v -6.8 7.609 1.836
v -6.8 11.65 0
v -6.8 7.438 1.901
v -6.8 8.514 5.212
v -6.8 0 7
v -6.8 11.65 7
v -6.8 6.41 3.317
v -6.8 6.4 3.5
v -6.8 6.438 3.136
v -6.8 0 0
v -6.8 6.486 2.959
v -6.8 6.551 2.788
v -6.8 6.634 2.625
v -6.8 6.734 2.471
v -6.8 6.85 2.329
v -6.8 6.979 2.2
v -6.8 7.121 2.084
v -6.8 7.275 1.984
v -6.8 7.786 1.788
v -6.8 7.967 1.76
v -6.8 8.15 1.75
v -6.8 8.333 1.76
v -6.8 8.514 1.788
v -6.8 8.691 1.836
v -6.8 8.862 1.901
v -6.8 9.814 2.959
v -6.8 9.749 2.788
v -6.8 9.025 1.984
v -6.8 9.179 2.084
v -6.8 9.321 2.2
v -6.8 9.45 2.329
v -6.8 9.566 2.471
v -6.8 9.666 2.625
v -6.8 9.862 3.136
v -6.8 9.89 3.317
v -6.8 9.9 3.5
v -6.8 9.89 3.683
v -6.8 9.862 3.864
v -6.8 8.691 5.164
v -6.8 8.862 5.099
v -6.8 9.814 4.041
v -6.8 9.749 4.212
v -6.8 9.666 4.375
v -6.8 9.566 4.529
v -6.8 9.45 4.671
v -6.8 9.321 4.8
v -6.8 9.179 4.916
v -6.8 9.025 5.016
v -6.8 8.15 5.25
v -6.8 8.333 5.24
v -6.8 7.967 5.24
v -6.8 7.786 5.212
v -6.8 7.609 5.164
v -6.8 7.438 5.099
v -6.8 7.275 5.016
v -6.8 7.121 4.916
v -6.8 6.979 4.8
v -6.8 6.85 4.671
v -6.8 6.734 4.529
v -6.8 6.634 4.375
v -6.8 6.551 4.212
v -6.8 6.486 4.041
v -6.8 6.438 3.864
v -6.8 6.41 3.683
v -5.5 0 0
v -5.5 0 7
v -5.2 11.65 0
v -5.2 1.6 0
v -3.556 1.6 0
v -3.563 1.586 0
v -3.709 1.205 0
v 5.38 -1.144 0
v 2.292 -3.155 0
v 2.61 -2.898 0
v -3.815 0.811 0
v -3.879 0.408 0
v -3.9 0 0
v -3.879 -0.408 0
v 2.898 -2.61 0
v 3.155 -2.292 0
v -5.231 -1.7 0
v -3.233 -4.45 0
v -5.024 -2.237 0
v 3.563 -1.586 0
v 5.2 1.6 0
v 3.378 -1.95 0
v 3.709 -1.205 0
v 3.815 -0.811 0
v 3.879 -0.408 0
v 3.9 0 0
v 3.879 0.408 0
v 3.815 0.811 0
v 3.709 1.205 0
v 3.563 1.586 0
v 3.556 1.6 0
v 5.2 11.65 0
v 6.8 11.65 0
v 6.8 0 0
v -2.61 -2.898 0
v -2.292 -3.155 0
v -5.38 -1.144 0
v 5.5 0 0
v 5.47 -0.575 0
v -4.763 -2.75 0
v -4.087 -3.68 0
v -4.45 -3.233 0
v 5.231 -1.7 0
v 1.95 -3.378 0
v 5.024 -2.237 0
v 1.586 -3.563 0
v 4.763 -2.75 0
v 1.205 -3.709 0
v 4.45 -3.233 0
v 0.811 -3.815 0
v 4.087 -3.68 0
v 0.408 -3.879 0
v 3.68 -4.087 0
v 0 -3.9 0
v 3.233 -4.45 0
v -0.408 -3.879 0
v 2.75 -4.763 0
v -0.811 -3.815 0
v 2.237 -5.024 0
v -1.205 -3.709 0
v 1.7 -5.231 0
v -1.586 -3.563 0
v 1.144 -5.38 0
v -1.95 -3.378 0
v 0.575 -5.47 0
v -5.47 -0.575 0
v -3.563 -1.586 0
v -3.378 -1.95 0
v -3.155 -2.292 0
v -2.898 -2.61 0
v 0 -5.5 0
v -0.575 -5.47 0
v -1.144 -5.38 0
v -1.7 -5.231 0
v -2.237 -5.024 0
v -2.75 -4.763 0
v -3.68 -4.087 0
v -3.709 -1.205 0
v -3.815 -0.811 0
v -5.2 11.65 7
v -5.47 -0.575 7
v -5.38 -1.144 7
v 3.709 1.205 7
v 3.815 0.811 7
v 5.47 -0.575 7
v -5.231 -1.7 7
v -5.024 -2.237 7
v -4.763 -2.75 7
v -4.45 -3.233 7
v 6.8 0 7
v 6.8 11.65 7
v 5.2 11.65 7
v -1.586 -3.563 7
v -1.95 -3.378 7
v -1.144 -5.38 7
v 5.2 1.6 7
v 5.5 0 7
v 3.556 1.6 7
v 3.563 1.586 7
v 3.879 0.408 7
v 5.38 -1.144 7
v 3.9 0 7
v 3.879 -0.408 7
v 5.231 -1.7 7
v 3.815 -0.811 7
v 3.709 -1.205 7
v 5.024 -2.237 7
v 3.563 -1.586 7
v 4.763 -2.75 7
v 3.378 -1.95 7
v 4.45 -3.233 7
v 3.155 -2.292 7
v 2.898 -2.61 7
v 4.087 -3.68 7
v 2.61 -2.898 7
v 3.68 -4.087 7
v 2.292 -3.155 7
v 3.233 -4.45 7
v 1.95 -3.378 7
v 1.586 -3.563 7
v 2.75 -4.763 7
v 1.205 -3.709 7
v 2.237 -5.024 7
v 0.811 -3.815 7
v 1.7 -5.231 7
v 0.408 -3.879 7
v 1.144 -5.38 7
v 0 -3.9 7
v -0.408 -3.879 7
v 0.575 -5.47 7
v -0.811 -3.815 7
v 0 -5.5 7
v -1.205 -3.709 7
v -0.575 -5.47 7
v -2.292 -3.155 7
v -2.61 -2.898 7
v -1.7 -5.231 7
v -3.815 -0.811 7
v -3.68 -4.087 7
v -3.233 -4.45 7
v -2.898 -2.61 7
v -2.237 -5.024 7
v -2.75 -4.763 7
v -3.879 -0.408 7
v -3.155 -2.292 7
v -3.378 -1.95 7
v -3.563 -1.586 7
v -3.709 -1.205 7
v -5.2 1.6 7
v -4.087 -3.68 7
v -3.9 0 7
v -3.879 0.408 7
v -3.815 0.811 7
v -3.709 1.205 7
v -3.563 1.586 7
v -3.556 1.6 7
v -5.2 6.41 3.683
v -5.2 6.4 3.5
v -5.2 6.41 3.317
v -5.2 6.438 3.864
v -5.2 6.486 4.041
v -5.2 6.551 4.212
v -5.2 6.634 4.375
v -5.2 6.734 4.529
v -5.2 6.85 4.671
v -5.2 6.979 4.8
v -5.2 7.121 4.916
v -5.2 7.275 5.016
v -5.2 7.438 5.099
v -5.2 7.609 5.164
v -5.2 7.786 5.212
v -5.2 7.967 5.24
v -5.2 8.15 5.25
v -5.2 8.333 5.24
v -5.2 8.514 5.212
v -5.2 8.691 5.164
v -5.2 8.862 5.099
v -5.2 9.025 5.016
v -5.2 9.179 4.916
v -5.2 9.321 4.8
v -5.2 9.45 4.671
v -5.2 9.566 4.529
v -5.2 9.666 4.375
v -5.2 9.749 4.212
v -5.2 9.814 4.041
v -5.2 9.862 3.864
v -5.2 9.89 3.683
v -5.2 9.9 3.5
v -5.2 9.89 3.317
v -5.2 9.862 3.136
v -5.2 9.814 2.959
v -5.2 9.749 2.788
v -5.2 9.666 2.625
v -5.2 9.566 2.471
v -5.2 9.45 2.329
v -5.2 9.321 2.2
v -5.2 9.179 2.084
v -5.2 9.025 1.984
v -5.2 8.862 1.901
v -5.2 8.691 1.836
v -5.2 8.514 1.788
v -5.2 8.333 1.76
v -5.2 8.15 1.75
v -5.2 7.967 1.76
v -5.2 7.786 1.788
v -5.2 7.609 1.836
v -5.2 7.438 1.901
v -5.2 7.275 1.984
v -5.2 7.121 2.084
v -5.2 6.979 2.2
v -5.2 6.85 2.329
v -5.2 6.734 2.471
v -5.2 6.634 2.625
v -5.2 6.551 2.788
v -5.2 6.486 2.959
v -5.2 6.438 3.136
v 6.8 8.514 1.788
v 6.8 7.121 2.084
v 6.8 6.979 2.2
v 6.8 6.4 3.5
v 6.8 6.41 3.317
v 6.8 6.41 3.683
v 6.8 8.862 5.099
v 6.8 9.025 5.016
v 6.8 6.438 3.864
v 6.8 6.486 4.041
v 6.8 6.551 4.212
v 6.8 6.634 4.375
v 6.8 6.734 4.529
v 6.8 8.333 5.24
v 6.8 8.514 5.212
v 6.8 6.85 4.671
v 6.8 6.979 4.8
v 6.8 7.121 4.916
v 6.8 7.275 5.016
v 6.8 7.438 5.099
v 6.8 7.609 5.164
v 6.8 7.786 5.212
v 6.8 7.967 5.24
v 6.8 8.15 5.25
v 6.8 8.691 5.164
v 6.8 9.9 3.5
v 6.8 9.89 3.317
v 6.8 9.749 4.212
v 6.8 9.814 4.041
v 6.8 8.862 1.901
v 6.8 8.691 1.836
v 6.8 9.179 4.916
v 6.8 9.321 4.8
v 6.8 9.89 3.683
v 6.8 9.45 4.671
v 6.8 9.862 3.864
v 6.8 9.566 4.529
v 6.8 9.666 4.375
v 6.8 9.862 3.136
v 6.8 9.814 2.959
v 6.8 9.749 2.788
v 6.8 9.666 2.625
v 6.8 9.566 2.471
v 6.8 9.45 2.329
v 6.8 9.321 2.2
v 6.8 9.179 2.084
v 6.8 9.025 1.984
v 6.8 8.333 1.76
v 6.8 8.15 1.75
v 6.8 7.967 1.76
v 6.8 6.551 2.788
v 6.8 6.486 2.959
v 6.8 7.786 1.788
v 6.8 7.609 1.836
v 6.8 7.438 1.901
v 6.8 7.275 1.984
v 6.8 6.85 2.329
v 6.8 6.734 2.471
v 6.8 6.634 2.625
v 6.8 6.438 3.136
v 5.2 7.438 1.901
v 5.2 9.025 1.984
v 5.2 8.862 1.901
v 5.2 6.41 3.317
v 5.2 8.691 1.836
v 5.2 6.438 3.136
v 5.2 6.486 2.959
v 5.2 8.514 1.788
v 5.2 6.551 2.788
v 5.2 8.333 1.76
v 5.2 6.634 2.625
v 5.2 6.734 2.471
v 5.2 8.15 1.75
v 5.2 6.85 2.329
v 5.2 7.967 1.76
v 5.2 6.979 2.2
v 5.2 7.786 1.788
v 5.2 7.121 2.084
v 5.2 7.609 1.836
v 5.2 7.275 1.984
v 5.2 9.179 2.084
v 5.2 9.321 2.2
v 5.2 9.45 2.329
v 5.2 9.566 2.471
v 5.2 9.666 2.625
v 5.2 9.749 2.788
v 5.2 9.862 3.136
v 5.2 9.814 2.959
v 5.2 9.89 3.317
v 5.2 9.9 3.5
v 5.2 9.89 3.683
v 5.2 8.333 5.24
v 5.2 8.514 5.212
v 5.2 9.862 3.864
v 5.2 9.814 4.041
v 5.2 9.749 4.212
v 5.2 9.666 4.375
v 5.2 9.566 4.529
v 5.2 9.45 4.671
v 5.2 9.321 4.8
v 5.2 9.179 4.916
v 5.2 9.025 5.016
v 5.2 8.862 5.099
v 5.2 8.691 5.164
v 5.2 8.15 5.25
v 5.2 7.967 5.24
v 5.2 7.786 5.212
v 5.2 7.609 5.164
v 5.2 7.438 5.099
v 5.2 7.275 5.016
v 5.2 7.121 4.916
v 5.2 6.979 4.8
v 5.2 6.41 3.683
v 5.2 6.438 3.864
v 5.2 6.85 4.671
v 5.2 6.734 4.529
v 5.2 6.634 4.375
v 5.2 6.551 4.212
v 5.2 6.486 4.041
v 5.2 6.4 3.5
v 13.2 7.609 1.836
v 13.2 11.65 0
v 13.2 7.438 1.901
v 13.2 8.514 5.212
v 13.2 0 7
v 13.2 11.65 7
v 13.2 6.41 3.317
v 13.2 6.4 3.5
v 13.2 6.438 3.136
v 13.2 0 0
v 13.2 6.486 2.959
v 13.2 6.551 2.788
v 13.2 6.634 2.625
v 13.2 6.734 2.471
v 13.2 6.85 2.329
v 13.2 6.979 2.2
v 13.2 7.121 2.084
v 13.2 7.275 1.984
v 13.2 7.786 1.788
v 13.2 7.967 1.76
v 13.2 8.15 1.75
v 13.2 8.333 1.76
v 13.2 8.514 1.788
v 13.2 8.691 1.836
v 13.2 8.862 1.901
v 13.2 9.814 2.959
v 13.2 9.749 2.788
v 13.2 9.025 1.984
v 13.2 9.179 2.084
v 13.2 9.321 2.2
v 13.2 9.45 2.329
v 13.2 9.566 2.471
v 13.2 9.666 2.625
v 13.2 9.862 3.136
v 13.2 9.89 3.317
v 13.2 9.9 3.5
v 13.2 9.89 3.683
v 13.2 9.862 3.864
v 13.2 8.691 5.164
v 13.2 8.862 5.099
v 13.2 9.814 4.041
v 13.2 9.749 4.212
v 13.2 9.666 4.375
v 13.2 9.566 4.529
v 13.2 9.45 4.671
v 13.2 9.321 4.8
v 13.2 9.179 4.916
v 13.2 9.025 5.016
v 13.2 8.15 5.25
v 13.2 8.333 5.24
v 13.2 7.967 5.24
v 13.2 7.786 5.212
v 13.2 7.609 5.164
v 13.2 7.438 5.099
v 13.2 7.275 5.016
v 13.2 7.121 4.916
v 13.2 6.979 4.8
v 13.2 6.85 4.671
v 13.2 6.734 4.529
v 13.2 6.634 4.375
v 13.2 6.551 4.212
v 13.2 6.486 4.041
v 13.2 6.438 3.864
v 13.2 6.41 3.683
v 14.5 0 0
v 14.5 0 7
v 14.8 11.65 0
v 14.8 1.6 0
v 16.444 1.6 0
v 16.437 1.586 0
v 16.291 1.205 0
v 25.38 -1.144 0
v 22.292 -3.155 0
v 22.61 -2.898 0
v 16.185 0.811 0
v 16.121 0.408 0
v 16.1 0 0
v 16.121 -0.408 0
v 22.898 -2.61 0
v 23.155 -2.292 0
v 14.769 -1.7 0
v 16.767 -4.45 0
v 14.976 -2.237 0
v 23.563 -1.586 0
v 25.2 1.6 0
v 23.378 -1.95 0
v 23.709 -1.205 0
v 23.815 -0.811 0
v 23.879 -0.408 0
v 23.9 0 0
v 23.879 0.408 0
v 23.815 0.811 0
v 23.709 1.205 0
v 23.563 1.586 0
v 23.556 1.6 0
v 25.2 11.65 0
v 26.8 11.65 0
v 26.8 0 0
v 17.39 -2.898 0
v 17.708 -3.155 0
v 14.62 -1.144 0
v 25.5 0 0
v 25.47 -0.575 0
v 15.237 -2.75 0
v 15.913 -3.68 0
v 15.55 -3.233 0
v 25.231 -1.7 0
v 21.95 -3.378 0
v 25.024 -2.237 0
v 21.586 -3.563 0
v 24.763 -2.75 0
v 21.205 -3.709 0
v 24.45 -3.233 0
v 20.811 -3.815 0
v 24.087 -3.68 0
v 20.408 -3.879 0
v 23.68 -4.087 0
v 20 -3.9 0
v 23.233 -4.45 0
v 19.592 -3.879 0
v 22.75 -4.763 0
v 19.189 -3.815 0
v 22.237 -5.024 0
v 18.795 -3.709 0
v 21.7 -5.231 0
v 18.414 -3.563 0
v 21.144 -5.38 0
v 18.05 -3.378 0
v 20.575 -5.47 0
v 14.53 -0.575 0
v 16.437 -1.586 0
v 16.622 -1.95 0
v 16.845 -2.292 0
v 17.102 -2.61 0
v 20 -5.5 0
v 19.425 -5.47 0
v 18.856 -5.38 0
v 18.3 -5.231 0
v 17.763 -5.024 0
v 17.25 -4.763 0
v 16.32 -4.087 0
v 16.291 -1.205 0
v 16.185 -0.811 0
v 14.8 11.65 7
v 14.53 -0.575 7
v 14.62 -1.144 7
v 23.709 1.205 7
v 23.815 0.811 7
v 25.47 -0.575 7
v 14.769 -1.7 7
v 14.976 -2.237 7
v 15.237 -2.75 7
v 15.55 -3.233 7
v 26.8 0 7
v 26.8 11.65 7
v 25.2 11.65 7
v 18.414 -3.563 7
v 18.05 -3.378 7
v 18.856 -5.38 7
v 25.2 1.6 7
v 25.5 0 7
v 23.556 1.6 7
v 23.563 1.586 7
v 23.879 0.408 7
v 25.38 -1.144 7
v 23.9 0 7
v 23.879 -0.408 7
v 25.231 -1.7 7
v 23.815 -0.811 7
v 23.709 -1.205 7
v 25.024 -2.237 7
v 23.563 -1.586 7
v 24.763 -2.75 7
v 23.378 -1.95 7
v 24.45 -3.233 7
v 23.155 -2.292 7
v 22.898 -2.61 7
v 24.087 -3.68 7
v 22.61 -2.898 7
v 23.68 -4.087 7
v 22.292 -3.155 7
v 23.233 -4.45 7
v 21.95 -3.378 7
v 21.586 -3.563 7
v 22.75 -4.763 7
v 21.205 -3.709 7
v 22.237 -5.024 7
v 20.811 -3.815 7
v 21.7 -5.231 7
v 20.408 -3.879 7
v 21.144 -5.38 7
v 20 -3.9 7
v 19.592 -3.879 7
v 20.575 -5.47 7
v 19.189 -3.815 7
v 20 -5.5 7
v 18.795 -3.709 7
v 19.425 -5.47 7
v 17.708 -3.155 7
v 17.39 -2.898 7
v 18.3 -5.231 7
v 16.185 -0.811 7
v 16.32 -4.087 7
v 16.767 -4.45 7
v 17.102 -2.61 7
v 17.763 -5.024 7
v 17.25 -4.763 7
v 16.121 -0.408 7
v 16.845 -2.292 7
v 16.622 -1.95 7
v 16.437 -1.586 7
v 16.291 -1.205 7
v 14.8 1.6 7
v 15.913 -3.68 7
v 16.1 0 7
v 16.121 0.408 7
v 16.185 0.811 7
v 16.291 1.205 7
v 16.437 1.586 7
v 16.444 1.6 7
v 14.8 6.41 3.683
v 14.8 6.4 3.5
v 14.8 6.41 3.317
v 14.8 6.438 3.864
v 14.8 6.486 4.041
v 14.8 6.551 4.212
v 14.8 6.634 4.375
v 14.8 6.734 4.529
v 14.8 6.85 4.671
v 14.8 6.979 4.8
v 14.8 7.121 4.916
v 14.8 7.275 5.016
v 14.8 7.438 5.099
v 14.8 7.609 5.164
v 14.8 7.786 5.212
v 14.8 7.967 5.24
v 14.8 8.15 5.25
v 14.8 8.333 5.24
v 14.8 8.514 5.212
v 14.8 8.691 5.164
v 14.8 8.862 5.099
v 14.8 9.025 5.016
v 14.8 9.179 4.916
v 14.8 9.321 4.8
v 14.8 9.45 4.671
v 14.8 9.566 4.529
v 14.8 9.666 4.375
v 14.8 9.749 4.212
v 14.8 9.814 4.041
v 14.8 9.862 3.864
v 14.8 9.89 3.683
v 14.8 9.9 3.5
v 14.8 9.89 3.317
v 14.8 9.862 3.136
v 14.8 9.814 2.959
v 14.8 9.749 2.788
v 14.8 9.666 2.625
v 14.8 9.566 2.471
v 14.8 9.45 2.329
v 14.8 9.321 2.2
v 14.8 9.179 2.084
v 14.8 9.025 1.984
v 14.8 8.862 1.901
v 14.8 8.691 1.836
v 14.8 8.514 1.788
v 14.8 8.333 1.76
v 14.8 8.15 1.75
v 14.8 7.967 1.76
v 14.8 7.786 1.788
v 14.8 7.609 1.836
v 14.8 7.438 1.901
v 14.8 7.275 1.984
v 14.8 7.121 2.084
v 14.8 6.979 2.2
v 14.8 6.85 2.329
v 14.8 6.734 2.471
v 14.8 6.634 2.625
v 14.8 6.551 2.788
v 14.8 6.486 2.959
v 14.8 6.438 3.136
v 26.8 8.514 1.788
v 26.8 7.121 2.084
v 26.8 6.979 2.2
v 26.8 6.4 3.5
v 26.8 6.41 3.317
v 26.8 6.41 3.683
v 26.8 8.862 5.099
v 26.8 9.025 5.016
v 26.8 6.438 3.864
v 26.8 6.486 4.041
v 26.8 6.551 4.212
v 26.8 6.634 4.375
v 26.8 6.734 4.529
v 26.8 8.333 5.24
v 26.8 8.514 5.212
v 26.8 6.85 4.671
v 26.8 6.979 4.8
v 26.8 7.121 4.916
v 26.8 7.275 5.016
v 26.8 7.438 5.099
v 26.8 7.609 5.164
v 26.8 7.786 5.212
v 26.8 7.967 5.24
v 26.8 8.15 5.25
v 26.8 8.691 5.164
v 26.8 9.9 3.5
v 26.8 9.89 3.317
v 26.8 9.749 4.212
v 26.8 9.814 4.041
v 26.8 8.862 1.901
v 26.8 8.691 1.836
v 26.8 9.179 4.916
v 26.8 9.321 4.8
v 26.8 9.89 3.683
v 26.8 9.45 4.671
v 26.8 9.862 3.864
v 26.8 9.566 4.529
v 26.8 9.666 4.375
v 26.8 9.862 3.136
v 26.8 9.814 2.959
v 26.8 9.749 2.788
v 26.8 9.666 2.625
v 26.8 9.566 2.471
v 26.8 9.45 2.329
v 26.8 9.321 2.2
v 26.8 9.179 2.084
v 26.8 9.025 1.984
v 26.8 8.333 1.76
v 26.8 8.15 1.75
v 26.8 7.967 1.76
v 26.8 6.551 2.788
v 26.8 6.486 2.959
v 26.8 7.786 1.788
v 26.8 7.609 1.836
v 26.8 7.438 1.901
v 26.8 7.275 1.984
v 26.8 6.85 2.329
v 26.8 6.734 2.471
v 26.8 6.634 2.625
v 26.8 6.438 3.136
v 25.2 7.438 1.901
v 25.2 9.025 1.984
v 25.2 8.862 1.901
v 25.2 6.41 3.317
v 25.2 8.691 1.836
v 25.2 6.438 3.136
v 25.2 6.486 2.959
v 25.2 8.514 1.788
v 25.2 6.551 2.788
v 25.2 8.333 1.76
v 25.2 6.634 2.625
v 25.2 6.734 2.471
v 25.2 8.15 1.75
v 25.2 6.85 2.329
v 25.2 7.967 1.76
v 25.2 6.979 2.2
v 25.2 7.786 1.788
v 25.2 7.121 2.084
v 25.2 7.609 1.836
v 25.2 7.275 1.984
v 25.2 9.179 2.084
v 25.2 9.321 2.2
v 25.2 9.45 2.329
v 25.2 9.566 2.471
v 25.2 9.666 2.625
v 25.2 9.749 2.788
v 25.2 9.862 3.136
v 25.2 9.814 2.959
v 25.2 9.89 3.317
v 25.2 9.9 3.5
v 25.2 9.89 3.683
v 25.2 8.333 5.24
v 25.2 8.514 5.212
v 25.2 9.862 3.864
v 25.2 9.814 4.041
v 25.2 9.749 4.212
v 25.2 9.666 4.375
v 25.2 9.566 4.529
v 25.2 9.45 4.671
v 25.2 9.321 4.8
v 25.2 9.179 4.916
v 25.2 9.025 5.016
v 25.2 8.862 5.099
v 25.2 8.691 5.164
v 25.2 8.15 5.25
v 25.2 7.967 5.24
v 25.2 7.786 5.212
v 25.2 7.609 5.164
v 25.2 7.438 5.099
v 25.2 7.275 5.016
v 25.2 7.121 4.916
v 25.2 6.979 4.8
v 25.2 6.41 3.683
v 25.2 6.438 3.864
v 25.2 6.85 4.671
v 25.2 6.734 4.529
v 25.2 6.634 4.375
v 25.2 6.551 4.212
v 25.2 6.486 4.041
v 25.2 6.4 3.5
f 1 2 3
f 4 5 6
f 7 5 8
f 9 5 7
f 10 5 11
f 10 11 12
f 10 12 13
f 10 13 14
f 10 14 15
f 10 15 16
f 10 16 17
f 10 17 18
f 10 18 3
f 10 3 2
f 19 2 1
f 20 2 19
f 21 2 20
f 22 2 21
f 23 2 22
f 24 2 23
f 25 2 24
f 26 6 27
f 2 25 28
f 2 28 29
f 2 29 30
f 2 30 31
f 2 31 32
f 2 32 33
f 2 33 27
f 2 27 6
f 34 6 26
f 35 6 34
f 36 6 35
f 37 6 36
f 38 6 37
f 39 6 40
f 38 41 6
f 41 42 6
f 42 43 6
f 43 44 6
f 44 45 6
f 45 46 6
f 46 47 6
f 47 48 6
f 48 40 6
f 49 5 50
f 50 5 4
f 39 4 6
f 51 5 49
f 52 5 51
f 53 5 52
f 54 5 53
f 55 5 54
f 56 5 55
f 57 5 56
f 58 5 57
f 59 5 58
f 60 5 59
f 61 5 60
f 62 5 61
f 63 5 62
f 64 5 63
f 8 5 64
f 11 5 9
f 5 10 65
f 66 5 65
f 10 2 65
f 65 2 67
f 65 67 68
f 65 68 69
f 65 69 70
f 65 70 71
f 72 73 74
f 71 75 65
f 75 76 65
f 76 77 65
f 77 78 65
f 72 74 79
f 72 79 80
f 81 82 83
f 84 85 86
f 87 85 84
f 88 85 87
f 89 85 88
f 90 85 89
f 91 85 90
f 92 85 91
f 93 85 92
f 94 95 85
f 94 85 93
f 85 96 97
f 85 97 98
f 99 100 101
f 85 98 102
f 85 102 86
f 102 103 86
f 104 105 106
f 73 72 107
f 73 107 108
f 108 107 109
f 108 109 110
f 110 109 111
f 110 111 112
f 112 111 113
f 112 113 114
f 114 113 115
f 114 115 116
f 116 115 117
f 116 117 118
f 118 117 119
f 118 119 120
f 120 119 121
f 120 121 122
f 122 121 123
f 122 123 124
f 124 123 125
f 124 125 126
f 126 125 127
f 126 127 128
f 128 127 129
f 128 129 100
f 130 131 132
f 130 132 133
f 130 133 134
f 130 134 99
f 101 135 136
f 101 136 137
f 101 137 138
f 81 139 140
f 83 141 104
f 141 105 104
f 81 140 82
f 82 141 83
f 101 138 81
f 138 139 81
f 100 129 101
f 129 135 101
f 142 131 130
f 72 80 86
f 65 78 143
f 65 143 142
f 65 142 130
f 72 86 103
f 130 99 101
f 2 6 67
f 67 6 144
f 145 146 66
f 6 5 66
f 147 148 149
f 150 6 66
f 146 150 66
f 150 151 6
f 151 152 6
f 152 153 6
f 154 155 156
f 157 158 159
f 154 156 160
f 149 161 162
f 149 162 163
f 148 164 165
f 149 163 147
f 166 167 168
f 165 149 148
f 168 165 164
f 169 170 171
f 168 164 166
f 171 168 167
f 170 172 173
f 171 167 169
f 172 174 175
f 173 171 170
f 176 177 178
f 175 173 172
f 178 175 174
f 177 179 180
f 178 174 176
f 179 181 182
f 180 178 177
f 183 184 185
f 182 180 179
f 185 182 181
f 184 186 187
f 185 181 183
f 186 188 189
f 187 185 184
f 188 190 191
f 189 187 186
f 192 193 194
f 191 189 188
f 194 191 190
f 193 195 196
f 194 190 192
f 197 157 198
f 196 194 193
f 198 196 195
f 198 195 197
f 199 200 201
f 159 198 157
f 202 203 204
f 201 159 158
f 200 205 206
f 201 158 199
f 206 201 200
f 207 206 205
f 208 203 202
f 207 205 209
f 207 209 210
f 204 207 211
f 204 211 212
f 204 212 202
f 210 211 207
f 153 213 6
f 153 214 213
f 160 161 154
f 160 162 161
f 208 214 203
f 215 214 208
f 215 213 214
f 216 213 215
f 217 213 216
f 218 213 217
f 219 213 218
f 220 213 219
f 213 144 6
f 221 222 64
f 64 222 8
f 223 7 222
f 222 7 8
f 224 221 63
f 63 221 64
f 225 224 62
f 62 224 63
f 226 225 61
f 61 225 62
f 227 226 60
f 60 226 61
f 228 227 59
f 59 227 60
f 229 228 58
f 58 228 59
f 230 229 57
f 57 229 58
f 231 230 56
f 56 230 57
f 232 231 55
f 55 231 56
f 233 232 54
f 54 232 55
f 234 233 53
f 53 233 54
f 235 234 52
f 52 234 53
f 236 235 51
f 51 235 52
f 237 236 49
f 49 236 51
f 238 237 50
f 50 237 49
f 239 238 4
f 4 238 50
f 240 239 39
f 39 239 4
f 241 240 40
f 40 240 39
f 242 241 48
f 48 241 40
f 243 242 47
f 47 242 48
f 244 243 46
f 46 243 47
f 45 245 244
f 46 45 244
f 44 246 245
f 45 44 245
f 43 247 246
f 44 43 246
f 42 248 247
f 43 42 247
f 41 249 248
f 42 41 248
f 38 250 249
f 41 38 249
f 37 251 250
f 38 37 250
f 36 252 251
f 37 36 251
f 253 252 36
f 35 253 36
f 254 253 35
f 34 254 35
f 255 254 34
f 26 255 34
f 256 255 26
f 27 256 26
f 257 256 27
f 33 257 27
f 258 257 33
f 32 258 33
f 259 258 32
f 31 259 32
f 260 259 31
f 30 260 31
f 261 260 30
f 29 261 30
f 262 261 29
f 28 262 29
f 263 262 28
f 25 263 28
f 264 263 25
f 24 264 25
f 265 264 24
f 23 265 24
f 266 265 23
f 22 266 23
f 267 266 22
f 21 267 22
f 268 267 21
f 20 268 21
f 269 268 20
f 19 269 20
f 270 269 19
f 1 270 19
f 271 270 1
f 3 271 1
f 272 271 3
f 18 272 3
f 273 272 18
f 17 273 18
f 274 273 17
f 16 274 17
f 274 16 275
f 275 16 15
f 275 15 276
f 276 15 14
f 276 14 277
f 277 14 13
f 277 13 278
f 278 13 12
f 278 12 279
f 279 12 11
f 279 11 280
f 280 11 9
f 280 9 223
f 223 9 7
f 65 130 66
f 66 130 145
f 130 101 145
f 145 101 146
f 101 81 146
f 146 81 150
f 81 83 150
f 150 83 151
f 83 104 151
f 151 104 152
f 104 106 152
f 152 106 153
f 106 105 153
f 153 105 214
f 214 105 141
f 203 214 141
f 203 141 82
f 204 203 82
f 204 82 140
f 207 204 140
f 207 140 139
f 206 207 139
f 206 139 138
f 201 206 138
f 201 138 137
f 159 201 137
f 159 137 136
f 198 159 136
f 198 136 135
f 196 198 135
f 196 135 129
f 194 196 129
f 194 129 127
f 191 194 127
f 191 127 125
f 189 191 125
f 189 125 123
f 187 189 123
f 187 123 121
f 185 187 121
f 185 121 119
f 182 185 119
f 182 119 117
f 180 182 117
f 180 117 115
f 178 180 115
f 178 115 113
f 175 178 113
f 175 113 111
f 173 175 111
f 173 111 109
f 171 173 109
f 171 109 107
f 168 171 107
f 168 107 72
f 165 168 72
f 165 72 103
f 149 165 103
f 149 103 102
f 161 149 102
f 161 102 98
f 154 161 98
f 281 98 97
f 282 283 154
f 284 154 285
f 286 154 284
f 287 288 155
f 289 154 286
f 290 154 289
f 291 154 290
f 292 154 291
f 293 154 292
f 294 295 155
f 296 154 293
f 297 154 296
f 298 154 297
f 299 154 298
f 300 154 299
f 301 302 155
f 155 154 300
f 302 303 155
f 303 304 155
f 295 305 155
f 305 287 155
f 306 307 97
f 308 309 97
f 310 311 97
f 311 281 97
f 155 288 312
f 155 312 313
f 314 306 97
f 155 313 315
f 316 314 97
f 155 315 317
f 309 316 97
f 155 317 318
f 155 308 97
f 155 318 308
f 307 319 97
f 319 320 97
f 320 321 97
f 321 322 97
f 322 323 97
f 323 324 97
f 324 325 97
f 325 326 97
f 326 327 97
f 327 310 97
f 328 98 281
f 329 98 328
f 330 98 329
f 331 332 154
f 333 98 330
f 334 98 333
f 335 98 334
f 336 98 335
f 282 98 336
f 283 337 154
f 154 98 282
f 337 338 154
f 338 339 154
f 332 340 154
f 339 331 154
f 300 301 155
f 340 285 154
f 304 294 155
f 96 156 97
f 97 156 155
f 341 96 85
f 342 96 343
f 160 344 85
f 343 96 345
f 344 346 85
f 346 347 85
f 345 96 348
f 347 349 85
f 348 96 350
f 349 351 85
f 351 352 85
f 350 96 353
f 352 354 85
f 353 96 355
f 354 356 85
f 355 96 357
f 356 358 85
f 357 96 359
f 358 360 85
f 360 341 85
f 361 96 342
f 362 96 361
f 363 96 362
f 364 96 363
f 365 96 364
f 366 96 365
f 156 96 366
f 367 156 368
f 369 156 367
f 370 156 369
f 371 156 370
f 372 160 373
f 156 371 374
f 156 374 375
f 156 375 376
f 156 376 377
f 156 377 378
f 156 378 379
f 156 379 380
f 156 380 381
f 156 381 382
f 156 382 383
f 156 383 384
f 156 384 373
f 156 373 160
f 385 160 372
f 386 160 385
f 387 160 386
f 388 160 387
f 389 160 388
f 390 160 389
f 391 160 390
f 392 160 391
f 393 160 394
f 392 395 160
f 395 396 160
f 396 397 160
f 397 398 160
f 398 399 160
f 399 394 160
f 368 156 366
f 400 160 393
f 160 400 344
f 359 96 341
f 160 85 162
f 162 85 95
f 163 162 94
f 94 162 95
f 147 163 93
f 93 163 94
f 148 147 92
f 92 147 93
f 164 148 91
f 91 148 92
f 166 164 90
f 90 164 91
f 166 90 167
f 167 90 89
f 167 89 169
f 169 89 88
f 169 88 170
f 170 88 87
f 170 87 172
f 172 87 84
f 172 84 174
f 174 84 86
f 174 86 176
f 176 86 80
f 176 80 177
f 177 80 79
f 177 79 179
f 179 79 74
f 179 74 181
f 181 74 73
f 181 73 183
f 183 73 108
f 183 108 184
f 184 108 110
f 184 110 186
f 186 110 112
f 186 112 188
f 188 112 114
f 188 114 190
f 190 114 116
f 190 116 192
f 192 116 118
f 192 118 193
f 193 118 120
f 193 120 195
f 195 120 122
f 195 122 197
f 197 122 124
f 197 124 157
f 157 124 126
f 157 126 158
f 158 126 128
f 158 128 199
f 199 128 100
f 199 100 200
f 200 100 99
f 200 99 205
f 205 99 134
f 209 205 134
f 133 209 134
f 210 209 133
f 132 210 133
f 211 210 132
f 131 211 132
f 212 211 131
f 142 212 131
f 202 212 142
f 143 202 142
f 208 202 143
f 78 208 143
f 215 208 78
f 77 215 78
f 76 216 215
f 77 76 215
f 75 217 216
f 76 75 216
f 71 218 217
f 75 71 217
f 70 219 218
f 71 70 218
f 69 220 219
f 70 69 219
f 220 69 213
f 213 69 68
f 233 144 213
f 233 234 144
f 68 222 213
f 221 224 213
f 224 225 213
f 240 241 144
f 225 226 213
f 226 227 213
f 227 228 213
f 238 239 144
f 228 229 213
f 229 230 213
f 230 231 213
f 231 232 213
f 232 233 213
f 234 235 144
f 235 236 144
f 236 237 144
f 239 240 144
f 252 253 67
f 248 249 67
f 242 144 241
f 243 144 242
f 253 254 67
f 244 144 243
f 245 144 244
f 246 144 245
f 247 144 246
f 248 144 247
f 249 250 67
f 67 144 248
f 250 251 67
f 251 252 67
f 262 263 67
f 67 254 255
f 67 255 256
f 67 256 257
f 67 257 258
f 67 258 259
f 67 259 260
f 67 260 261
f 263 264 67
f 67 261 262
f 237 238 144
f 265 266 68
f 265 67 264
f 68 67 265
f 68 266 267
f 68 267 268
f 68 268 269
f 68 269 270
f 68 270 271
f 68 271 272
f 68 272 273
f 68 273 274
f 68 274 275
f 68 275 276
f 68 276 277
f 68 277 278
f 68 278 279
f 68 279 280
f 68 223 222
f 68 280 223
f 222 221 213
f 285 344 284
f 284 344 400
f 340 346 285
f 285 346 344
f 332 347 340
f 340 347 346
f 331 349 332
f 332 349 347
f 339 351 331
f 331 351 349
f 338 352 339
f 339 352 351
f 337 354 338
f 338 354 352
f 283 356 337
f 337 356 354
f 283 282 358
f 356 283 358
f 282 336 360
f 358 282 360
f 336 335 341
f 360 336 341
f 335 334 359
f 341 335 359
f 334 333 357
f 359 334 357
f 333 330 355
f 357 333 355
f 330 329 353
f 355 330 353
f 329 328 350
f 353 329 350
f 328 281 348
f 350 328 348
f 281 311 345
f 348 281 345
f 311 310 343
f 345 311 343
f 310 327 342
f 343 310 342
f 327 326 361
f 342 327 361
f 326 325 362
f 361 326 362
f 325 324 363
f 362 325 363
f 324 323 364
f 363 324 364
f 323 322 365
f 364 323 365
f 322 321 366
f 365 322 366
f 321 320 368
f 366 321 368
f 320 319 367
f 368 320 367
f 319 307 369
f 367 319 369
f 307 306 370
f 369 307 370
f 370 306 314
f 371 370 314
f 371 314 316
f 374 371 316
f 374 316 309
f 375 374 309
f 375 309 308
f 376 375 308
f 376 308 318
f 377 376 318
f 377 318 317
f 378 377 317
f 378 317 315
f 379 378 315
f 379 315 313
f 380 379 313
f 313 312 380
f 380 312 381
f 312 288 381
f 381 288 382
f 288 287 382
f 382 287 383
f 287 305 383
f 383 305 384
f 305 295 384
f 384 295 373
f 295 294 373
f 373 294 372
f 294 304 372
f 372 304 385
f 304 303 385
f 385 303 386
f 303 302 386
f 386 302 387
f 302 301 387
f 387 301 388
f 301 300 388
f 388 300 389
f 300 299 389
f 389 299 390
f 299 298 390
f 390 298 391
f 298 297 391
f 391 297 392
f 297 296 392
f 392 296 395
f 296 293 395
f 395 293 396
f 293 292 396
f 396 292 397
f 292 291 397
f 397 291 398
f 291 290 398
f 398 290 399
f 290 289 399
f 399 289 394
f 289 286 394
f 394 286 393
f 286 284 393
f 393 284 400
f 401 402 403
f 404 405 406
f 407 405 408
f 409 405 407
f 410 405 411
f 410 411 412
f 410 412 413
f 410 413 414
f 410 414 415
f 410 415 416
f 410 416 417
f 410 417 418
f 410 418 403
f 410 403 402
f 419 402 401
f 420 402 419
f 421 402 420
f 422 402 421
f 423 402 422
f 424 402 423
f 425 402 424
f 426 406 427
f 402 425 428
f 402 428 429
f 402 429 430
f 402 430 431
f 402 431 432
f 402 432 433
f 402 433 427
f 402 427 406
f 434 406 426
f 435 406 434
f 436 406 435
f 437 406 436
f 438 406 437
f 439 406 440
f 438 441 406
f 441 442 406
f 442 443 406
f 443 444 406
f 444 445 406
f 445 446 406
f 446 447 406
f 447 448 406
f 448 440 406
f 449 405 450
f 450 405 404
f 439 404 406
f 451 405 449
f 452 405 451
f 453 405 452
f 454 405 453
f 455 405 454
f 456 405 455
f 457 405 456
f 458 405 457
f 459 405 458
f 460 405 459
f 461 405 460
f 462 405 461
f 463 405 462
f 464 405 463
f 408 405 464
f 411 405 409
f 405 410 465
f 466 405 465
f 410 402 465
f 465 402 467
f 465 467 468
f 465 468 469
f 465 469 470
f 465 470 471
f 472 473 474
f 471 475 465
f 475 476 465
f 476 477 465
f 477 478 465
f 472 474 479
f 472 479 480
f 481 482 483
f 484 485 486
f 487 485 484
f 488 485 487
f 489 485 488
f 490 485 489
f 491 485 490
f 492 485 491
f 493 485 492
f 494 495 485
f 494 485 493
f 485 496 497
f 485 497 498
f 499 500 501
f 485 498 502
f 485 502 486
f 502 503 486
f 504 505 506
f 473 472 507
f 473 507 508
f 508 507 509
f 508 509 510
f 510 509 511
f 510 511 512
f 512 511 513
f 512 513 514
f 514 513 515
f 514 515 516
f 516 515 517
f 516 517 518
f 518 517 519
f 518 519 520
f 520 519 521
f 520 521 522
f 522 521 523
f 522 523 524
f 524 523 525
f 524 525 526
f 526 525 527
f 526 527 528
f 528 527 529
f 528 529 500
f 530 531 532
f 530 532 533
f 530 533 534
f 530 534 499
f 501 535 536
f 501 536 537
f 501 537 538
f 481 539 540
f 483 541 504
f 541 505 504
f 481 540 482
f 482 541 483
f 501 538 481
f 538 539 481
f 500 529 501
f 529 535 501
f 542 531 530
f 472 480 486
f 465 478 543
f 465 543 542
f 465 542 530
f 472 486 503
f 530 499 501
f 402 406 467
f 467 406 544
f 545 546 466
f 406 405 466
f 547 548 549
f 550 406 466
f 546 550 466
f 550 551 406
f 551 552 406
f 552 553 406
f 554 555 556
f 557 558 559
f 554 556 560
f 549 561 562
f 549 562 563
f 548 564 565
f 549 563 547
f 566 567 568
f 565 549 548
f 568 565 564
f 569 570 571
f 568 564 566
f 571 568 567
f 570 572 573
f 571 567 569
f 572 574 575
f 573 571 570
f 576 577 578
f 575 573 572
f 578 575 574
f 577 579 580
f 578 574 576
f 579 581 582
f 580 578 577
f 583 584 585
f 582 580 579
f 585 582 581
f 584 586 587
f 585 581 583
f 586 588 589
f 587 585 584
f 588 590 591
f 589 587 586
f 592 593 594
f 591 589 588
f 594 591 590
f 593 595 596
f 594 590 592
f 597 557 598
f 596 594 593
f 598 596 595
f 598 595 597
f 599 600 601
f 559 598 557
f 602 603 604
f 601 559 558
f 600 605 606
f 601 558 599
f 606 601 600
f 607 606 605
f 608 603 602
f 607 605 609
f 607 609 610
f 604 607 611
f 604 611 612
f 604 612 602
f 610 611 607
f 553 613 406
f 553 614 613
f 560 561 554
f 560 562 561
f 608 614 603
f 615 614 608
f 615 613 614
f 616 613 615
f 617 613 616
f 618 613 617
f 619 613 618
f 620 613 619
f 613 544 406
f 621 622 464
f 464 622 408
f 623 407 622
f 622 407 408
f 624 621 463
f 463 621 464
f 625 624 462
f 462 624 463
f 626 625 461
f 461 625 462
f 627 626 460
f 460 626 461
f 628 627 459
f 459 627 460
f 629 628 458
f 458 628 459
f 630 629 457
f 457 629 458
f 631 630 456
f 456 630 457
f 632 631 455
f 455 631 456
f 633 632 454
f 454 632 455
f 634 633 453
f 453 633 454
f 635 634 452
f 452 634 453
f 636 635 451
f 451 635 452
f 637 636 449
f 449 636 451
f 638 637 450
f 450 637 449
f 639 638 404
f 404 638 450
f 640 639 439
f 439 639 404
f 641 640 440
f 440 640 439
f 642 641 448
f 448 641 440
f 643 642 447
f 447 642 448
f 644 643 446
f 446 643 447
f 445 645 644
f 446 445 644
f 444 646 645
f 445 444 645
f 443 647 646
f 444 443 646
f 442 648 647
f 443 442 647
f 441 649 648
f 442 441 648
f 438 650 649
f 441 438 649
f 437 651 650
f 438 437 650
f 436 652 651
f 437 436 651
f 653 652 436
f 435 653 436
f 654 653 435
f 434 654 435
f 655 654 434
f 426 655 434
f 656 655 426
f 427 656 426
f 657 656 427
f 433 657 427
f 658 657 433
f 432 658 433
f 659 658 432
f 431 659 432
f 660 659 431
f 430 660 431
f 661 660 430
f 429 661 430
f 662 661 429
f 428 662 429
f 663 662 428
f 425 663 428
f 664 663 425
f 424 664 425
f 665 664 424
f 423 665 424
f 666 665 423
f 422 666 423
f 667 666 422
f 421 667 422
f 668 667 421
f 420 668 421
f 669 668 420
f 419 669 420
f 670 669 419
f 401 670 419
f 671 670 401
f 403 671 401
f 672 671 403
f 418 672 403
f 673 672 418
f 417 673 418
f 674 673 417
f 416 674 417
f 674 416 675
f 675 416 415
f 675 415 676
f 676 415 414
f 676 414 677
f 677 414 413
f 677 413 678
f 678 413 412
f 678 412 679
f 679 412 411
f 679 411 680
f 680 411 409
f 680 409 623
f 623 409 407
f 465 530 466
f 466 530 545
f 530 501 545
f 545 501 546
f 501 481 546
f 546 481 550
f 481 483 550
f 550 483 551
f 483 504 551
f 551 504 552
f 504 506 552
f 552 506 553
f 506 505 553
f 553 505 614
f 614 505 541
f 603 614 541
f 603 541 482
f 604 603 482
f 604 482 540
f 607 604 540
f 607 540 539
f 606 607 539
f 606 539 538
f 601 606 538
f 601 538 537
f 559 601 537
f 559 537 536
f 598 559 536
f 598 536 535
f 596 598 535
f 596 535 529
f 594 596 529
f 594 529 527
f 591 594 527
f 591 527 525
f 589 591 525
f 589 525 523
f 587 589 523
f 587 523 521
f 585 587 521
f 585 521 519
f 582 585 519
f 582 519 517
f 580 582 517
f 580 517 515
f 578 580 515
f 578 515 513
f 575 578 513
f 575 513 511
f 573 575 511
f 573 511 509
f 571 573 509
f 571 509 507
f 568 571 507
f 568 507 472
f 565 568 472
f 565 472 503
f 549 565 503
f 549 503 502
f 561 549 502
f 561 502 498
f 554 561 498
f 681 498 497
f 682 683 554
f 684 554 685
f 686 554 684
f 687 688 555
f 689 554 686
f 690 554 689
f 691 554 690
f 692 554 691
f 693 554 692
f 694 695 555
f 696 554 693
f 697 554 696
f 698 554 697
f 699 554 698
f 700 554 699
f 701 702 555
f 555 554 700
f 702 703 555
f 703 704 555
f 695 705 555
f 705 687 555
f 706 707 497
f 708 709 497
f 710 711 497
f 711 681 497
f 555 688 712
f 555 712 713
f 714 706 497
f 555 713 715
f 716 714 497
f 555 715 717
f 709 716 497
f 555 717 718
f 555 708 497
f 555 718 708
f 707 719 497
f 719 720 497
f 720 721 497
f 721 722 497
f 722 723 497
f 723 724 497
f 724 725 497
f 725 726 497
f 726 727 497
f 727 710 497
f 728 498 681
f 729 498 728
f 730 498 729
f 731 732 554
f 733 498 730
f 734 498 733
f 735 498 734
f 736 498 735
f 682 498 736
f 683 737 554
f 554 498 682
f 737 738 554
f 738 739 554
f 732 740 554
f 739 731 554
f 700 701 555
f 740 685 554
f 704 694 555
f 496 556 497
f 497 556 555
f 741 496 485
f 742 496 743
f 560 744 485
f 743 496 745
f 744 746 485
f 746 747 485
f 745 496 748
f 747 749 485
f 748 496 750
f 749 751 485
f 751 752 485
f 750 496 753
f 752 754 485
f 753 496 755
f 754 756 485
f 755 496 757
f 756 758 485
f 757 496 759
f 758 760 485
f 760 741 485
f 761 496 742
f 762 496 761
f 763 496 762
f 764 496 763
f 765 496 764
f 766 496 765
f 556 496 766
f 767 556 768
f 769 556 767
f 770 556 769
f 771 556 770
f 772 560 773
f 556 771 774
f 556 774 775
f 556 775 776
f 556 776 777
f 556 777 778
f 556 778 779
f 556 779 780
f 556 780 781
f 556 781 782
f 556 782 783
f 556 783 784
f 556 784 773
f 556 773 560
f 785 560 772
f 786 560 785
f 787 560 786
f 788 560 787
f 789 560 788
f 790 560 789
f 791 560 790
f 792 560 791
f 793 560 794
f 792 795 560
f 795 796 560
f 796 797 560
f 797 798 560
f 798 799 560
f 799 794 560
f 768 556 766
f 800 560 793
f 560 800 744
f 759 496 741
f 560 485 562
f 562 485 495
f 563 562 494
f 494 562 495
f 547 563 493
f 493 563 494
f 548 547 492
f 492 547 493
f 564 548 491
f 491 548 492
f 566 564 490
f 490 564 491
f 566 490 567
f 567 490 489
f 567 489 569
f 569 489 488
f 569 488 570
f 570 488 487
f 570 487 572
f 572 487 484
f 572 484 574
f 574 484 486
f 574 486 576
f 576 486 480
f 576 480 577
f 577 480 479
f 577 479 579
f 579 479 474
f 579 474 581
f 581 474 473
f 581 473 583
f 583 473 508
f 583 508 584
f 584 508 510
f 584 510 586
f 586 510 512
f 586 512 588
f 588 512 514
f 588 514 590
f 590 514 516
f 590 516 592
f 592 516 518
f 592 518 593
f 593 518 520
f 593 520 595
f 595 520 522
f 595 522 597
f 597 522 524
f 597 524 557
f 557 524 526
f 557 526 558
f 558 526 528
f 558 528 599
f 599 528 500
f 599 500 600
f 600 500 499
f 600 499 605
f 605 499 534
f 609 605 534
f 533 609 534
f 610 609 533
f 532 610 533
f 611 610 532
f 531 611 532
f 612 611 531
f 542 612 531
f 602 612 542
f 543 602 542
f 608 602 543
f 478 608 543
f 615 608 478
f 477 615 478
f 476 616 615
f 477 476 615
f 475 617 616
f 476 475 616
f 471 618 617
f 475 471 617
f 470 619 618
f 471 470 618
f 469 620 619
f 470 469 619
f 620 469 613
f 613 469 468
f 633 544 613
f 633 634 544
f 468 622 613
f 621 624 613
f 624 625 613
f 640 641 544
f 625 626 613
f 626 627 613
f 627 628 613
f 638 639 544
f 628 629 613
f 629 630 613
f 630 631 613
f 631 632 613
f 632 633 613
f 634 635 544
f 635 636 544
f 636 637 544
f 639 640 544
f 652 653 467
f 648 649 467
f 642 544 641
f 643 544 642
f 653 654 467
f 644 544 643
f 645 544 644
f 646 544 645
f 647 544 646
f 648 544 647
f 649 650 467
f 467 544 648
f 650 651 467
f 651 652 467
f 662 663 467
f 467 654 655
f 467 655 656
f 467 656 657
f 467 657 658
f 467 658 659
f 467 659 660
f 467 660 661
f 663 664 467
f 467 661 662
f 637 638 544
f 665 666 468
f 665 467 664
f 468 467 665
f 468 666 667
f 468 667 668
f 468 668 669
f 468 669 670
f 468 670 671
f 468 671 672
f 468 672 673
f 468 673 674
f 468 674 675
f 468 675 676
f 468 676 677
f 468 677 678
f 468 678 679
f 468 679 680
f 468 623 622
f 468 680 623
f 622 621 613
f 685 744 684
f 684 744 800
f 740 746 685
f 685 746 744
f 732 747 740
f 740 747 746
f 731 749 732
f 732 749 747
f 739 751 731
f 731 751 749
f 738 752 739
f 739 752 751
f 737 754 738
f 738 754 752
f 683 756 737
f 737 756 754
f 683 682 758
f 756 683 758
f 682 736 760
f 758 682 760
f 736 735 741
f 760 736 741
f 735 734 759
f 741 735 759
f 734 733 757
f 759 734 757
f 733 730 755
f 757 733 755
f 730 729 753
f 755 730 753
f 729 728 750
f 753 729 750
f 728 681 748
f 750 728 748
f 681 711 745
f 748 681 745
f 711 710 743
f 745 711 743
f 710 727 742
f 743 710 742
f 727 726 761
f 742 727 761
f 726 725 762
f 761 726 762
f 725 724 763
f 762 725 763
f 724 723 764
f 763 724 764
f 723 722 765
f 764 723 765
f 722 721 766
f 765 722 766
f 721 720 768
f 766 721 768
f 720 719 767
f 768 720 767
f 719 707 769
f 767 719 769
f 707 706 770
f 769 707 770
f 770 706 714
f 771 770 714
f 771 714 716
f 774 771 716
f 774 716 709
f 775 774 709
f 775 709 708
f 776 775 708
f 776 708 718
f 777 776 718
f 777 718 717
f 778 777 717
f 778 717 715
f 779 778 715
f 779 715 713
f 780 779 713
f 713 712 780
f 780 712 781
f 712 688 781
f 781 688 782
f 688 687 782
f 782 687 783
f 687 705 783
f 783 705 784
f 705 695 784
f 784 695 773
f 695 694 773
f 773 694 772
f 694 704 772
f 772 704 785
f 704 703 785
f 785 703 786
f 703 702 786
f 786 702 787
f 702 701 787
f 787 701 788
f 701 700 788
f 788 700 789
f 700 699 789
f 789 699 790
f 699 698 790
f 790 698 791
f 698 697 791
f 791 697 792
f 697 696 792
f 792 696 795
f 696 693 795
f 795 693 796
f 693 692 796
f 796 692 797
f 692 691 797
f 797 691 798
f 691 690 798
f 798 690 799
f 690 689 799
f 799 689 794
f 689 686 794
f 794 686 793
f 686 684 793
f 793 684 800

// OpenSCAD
/*
 * electronics fan mount
 *
 * Mounts a cooling fan onto the frame.
 *
 * Copyright 2012 <b@Zi.iS>
 * License CC BY 3.0
 */
$fn = 60;

m8 = 7.80 / 2;
m3 = 3.5 / 2;

fan();
translate(	[
	20,
	0,
	0
]) {
	fan();
}

module fan(
	rod = m8,
	bolt = m3,
	thickness = 1.6,
	inset = 2.5,
	width = 10.4
) {
	shell = rod +thickness;
	length = bolt * 4;
	difference() {
		union() {
			cylinder(
				r=shell,
				h=length
			);
			translate(	[
				-(width+thickness*2)/2,
				0,
				0
			]) {
				cube([
					width+thickness*2,
					bolt*3+inset+rod,
					length
				]);
			}
		}
		translate(	[
			0,
			0,
			-1
		]) {
			cylinder(
				r=rod,
				h=length+2
			);
		}
		translate(	[
			-(width)/2,
			thickness,
			-1
		]) {
			cube([
				width,
				bolt*3+inset+thickness*2+rod*2+1,
				length+2
			]);
		}
		translate(	[
			-1-width/2-thickness,
			rod+bolt+inset,
			length/2
		]) {
			rotate([
				0,
				90,
				0
			]) {
				cylinder(
					r=bolt,
					h=width+thickness*2+2
				);
			}
		}

	}

}
